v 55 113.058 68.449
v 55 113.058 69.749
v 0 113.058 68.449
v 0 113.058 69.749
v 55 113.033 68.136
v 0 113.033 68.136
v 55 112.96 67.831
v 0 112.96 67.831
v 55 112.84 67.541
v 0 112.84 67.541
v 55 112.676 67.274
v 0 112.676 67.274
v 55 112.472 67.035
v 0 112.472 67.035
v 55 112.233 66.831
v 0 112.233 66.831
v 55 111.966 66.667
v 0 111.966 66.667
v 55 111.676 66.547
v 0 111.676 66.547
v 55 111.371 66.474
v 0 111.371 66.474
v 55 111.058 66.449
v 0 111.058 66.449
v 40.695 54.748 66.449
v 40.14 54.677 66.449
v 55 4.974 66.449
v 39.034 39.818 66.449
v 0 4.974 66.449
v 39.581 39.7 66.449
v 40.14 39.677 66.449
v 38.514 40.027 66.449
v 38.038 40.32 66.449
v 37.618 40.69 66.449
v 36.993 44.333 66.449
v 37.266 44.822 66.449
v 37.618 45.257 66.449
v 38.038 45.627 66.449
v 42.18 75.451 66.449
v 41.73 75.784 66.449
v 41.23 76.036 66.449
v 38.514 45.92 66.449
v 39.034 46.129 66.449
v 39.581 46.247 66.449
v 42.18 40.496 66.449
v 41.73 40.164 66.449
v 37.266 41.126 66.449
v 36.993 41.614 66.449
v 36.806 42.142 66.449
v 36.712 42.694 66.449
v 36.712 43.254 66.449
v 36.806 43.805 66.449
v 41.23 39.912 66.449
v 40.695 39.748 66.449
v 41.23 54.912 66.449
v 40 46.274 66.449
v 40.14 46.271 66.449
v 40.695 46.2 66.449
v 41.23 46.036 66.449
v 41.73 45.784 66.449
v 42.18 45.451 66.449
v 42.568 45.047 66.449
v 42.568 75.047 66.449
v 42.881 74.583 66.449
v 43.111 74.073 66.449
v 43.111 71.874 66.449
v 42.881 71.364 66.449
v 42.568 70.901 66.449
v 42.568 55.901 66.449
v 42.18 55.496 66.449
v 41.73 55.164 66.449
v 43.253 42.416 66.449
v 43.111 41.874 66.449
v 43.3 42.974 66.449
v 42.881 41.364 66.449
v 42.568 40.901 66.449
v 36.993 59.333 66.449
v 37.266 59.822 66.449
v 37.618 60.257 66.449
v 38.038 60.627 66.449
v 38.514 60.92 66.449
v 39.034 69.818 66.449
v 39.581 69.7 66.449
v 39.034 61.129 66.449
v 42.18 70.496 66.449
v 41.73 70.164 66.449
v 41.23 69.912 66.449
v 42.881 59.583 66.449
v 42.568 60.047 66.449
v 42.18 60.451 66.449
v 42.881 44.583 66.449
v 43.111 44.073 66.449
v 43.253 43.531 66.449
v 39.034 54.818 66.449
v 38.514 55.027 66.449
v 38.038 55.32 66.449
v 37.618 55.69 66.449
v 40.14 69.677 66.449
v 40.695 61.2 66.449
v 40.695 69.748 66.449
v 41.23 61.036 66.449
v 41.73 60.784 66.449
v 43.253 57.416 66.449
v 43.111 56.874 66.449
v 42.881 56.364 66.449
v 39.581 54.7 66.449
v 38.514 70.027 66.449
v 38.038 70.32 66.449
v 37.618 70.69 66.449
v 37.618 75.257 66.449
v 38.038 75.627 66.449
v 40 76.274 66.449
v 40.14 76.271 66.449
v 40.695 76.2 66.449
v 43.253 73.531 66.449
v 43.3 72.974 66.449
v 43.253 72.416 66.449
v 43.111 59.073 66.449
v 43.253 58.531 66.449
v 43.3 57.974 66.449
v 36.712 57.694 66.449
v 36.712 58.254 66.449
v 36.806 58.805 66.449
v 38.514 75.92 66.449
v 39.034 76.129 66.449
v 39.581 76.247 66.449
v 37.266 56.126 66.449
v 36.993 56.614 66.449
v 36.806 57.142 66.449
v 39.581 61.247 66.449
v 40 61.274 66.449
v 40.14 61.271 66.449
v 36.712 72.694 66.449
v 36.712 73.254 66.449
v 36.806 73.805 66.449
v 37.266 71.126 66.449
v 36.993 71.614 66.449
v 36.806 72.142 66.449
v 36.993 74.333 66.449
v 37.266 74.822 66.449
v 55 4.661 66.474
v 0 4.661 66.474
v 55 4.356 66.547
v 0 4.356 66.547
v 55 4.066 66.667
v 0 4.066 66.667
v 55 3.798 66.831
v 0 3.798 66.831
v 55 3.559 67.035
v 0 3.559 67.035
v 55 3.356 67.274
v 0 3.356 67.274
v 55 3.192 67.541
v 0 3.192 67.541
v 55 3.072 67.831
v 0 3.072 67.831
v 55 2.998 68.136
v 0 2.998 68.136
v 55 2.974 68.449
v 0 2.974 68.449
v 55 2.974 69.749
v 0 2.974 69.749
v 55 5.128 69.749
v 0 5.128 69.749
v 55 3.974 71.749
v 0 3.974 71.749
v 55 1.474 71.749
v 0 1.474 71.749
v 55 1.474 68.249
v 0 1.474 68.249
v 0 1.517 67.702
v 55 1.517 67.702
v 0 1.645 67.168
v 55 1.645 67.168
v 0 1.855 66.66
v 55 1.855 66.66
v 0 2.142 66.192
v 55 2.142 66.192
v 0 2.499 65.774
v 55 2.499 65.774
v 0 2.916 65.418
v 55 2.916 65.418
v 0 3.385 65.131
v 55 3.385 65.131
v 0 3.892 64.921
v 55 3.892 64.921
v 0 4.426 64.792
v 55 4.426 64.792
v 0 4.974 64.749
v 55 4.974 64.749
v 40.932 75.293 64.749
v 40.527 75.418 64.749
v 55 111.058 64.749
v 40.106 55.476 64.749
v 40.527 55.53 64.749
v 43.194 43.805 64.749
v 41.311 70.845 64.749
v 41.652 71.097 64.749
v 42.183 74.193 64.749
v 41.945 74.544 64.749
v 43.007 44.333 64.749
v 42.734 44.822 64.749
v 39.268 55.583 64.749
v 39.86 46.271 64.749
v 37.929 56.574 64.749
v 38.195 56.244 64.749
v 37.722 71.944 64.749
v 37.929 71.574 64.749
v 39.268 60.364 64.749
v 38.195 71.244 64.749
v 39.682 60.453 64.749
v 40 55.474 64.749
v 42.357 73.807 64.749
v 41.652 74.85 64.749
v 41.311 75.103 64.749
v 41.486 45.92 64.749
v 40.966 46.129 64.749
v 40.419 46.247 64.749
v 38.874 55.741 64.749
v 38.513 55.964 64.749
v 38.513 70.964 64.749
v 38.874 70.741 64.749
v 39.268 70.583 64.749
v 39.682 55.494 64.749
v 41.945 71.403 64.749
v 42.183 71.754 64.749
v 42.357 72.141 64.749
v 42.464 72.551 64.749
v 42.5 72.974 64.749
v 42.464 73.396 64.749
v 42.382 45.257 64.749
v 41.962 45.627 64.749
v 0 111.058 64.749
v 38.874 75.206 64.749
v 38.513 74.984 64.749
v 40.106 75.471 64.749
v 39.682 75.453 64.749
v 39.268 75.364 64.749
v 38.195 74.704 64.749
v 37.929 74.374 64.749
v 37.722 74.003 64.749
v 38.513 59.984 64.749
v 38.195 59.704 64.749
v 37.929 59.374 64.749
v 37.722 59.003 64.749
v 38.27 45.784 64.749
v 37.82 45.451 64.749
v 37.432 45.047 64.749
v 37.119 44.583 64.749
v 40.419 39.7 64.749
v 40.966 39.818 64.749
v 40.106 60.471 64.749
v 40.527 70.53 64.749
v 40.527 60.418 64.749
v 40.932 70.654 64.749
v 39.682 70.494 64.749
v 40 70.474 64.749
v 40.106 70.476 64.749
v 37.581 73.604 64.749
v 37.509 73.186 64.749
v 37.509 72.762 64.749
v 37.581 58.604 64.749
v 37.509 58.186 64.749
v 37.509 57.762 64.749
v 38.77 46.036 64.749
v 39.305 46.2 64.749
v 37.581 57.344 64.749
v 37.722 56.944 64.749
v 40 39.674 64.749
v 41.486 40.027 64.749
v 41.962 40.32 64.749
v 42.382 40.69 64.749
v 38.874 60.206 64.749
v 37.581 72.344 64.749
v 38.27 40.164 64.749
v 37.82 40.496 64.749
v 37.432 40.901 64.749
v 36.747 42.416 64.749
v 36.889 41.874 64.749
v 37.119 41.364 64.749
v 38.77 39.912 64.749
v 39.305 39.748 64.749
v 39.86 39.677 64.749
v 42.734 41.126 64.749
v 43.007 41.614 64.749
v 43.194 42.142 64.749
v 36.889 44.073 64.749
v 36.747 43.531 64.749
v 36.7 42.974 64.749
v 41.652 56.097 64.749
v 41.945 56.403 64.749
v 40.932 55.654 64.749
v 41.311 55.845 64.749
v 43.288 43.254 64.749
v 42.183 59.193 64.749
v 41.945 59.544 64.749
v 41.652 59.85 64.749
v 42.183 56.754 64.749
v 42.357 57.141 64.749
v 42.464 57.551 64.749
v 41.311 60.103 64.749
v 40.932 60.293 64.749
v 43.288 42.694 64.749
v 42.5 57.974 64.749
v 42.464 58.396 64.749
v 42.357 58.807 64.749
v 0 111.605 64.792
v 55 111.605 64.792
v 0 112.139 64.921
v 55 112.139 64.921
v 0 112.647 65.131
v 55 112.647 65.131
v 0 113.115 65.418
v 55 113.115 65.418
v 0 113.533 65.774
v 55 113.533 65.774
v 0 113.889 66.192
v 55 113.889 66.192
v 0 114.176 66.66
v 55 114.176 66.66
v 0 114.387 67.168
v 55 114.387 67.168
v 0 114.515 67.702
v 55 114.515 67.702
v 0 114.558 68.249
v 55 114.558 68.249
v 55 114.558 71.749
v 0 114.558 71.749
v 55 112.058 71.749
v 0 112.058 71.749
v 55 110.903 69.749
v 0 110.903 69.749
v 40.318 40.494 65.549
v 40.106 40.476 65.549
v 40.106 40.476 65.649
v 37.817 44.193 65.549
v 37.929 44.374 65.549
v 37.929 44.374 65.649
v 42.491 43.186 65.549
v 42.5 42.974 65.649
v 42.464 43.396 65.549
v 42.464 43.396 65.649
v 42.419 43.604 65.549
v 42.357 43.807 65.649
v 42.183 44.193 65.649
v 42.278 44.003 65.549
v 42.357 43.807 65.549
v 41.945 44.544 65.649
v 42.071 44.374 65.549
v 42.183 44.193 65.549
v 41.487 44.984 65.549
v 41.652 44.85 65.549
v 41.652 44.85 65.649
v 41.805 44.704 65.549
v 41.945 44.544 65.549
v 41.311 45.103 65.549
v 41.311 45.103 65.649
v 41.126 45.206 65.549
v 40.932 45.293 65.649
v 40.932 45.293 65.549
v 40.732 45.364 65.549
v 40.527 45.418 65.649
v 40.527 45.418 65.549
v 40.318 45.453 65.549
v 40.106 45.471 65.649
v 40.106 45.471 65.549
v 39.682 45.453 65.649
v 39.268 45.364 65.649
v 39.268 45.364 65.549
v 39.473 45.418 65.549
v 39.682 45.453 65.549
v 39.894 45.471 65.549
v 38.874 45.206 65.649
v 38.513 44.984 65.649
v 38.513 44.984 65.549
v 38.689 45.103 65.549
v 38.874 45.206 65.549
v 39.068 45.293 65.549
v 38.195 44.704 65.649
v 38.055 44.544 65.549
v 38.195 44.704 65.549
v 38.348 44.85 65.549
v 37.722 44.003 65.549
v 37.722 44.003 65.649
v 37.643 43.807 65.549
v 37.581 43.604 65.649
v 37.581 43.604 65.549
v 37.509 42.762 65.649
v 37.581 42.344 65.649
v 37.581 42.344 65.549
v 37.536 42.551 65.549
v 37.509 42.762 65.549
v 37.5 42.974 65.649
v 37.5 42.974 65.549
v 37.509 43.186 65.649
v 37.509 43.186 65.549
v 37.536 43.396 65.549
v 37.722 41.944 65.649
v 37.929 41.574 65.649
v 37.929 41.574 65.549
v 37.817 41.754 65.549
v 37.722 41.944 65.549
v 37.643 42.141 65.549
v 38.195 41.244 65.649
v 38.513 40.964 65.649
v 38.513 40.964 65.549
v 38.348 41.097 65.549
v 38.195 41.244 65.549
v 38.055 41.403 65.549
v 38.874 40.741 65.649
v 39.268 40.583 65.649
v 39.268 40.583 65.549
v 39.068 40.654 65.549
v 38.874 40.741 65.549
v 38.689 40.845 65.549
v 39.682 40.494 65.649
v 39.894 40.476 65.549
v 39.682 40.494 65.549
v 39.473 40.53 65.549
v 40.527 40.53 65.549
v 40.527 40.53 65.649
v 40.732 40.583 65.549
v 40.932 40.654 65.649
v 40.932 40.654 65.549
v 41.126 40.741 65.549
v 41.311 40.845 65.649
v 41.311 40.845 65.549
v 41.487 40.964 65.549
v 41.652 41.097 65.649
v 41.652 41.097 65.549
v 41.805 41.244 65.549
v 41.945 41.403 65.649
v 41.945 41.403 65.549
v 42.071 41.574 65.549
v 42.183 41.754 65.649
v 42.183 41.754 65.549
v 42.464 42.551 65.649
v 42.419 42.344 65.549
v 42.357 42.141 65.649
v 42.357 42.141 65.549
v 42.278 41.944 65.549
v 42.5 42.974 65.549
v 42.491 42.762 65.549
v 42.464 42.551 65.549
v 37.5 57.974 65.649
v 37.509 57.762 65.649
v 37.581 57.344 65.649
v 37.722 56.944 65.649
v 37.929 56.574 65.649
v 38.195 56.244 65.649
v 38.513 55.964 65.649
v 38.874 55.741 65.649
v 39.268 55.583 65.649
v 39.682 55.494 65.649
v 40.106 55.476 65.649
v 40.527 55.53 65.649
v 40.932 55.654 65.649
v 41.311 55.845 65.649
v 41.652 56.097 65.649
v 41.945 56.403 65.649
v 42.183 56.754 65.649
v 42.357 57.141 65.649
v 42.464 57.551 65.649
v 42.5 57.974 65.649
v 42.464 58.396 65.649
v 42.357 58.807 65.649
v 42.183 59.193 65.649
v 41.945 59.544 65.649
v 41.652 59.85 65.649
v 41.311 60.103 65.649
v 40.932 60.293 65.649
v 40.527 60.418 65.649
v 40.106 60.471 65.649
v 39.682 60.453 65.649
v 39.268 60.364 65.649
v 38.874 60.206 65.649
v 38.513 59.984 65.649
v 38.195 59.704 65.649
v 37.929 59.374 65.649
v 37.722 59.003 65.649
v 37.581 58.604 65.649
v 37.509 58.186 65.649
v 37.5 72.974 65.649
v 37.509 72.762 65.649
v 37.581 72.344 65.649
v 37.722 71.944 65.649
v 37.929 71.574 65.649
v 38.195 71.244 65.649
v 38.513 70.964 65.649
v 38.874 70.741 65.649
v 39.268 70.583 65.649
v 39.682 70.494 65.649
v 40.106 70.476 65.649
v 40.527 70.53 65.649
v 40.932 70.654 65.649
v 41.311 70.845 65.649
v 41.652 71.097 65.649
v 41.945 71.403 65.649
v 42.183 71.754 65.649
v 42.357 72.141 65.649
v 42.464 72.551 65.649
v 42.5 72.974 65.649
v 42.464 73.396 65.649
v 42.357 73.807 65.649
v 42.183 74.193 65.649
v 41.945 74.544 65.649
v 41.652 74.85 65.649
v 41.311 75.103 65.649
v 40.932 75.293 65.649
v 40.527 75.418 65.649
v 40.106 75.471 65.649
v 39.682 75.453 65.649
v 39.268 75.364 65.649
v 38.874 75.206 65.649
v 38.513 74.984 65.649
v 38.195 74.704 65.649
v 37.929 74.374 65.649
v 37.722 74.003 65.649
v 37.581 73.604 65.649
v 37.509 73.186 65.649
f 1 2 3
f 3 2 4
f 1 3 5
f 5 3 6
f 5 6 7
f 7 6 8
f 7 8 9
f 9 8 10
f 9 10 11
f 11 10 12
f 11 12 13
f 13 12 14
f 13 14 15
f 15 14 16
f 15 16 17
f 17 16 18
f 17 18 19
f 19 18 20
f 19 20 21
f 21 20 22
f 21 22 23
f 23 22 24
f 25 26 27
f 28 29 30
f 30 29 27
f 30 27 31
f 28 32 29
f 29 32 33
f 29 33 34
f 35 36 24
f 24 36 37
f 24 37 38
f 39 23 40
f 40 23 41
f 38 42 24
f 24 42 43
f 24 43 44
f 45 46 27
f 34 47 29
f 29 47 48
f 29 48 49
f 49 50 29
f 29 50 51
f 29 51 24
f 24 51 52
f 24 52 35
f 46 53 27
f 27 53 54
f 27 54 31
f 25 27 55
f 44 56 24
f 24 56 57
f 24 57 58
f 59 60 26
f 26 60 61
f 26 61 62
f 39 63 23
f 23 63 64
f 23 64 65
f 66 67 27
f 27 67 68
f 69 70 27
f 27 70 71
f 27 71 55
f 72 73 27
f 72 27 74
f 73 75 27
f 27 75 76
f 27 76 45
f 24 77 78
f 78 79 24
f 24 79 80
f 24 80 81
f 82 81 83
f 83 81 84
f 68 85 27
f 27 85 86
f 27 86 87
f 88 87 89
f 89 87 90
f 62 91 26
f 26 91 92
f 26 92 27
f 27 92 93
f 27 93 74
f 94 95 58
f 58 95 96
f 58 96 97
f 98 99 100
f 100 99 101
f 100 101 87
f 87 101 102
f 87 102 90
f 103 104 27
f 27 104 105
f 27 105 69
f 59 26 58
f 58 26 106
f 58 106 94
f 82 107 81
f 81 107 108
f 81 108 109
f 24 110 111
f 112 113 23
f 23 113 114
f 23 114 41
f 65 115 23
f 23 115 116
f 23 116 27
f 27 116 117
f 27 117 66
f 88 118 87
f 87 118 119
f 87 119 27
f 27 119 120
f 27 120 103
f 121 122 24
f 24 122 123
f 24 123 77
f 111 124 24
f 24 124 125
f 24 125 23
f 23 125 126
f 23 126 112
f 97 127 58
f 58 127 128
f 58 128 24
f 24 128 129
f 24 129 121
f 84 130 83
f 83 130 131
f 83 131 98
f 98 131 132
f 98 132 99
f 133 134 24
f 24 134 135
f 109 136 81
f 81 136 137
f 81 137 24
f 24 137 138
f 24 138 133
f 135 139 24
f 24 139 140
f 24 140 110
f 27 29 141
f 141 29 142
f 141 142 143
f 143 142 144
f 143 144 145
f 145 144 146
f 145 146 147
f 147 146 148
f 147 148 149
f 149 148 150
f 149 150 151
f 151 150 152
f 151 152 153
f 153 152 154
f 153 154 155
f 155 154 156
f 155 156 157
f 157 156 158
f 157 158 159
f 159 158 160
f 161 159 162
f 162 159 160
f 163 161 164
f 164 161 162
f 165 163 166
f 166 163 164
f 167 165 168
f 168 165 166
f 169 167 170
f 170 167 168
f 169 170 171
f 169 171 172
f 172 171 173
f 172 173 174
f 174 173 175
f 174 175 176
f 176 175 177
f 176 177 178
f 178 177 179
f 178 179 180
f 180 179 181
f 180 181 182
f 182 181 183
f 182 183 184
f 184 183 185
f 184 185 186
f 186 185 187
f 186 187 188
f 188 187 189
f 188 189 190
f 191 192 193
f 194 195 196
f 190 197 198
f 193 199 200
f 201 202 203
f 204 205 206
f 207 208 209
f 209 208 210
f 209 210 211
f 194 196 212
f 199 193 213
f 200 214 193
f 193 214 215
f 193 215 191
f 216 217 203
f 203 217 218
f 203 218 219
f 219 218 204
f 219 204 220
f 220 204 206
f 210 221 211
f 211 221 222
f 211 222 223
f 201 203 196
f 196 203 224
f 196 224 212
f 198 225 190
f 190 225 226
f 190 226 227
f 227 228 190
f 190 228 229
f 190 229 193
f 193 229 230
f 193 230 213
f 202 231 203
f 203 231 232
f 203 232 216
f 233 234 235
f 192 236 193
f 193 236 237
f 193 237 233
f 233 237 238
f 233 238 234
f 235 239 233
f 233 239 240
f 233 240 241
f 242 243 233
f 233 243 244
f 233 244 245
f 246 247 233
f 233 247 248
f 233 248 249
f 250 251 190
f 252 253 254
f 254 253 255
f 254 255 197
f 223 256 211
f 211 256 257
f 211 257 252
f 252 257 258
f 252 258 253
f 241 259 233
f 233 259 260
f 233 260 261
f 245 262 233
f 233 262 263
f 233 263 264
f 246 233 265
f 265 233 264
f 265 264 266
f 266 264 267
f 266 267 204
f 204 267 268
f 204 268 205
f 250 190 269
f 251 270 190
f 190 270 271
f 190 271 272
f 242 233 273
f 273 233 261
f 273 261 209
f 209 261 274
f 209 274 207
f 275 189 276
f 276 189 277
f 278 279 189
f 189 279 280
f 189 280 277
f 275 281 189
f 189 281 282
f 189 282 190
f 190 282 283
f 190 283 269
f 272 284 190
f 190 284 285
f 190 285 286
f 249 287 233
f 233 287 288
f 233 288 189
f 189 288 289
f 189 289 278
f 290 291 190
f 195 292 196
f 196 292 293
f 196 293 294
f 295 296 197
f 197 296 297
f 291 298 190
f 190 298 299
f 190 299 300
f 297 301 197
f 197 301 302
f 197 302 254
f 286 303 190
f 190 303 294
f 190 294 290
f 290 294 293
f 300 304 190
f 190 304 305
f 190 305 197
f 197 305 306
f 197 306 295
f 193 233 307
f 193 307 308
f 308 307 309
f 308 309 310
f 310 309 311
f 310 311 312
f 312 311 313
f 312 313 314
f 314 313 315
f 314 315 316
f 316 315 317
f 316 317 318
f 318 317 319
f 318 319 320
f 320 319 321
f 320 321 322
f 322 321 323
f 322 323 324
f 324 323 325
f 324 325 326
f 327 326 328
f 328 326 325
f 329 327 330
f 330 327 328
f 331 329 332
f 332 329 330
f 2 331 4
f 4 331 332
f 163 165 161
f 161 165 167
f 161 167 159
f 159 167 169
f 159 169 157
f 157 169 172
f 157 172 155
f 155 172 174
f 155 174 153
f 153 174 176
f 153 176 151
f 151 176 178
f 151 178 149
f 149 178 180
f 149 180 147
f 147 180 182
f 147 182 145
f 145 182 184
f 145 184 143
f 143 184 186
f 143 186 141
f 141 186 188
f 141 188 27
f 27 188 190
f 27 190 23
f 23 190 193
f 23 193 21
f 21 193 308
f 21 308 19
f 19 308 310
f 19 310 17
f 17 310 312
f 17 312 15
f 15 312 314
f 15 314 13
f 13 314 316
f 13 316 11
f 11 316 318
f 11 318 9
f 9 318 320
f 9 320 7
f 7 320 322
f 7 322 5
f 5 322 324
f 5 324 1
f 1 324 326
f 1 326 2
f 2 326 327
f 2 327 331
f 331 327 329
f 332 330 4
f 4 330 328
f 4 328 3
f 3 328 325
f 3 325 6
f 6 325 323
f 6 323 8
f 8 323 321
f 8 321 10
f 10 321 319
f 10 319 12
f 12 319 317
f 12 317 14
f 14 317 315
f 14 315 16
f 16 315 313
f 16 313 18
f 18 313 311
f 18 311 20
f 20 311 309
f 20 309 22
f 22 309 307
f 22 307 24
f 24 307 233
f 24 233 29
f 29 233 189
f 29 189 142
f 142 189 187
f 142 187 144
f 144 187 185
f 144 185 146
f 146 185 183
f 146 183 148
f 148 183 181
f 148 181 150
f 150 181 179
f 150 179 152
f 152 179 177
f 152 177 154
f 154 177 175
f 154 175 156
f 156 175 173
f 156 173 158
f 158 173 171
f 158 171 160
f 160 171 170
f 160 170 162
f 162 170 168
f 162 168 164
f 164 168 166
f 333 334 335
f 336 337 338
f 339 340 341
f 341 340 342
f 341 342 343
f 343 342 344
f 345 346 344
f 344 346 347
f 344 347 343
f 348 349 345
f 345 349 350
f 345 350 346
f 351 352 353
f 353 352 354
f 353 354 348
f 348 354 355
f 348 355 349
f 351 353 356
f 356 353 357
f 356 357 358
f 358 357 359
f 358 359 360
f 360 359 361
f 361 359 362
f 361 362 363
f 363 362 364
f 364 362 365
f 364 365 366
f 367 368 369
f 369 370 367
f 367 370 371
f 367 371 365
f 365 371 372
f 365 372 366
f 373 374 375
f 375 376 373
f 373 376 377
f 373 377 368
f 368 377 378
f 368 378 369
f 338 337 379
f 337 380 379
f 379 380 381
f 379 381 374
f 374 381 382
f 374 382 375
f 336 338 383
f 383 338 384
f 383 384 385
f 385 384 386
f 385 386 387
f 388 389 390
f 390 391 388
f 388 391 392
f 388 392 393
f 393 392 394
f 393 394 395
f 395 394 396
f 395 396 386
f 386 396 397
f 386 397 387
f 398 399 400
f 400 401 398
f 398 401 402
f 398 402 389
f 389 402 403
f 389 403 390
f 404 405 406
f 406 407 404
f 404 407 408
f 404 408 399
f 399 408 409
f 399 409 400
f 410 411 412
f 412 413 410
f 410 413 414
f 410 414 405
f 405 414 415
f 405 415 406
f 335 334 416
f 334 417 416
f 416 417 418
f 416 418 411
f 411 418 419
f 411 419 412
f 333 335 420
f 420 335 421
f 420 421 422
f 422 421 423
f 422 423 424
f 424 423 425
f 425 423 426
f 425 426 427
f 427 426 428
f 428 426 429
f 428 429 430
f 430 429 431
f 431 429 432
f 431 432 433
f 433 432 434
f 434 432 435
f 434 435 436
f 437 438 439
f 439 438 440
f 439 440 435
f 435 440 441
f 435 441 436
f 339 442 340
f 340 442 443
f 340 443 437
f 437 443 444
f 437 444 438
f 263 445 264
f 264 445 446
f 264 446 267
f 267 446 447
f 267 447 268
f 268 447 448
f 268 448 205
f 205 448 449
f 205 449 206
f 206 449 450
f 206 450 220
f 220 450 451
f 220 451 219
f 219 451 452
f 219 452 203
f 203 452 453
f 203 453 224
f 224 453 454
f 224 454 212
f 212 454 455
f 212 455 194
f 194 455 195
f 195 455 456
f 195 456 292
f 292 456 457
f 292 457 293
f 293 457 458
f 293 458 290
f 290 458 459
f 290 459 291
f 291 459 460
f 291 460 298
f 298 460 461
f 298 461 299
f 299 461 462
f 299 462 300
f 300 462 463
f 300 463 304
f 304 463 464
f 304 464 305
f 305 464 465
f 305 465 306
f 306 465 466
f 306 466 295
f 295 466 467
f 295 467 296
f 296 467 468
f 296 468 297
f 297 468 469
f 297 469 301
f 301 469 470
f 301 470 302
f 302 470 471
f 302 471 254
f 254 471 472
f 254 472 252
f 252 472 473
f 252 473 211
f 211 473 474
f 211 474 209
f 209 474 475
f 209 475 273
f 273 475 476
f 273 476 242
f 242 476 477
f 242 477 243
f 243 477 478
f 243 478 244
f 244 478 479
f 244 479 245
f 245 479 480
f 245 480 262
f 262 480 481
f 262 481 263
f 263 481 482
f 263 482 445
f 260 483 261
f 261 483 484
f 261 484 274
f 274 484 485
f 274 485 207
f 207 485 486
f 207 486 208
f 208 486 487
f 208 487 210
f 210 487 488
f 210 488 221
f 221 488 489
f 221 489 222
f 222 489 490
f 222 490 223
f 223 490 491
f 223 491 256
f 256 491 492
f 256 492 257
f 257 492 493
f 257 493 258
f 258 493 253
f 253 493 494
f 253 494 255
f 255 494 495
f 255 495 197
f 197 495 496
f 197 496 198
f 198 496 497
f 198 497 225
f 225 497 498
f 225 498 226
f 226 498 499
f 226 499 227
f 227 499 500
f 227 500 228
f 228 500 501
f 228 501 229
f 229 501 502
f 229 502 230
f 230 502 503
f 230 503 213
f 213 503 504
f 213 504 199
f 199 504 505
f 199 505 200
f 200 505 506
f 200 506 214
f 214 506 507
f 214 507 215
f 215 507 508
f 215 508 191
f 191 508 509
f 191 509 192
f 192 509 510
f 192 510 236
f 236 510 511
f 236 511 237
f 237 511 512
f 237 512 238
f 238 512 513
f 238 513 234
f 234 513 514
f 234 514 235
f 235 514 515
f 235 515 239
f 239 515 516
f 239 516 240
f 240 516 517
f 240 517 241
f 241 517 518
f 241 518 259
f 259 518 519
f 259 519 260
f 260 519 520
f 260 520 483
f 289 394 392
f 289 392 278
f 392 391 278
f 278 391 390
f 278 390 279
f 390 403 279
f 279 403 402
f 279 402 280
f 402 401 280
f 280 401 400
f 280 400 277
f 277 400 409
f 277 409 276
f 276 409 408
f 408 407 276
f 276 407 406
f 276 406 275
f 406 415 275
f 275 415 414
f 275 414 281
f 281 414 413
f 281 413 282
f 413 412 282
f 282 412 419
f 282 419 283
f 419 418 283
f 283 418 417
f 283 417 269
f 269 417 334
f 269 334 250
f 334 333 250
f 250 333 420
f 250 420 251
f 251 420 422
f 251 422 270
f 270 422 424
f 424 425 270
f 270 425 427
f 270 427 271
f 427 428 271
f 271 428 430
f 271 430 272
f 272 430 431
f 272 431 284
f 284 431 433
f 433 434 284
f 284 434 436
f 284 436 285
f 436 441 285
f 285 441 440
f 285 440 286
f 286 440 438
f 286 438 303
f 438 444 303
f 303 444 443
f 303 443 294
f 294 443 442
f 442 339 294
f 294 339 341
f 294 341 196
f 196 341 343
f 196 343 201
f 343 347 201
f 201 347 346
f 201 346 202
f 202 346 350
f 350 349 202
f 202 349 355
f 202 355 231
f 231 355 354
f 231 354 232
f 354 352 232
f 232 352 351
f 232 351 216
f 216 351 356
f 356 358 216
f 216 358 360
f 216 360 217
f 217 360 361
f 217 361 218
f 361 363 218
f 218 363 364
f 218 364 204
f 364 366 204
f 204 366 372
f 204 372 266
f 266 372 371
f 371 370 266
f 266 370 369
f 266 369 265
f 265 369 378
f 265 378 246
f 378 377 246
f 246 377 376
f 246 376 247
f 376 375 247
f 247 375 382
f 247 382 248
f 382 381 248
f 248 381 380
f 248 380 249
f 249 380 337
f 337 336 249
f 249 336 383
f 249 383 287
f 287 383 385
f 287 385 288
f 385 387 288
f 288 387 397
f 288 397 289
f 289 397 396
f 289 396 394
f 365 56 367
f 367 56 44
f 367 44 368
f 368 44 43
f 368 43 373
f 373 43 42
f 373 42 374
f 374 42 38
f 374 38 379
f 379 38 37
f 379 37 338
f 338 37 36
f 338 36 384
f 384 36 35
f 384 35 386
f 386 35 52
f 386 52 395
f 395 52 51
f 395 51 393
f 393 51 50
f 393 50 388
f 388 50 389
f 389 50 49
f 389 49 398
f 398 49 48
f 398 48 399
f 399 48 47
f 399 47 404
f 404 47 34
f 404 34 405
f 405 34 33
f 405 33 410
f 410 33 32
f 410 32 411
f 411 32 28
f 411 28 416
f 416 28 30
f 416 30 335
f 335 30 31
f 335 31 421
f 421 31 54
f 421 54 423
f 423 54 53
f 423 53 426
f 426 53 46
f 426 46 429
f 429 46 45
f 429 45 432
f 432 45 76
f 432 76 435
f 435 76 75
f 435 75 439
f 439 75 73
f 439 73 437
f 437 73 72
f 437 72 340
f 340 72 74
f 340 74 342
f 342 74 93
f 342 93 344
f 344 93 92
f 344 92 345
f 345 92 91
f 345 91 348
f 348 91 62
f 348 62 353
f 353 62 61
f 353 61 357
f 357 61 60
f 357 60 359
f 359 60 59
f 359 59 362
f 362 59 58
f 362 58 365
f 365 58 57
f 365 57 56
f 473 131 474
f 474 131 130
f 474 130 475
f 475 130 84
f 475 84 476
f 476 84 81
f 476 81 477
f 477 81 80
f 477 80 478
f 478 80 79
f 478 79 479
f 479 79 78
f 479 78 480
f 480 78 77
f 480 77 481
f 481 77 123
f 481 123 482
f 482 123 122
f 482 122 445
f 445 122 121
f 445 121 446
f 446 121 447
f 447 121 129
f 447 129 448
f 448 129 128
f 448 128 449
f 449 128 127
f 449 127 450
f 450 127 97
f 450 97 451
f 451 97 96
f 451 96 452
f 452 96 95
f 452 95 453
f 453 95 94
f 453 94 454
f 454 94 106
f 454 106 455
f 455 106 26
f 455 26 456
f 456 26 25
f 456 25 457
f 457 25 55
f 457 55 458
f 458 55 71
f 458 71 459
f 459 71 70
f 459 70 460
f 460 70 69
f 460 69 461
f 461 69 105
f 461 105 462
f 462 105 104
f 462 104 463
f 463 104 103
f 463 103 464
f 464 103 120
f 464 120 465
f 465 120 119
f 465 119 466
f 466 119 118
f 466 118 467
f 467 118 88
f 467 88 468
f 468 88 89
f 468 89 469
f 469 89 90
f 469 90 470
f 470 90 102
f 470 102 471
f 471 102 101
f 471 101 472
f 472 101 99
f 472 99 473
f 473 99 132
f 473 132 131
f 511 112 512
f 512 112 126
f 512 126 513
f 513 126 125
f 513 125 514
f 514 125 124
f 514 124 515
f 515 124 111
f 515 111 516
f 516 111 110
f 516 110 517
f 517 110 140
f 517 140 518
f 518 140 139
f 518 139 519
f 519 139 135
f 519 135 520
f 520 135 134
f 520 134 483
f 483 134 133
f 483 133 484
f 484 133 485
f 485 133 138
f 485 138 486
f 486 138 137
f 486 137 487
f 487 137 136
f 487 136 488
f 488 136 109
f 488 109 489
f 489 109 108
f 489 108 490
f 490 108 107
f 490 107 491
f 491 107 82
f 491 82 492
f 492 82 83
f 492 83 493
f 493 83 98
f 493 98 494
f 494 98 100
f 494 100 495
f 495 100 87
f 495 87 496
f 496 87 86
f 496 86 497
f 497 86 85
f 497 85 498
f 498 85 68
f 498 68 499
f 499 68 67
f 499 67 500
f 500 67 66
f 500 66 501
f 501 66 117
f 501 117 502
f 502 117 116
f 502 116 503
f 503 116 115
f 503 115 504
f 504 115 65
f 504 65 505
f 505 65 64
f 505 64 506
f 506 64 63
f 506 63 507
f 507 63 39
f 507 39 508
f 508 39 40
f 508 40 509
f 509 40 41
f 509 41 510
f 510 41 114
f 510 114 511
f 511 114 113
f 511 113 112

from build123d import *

# Parameters (mm, degrees)
BOSS_EXTRUDE1_DEPTH = 55
CUT_EXTRUDE1_REACH  = 3.7
SKETCH2_R           = 2.5
CHAMFER1_SIZE       = 0.8


with BuildPart() as part:
    # Sketch1 → Boss-Extrude1 (new body)
    with BuildSketch(Plane(origin=(0, 0, 0), x_dir=(0, 0, -1), z_dir=(1, 0, 0))):
        with BuildLine():
            Line((-69.749215448, 110.903184829), (-69.749215448, 113.057885367))
            Line((-69.749215448, 113.057885367), (-68.449215448, 113.057885367))
            ThreePointArc((-68.449215448, 113.057885367), (-67.035001885, 112.47209893), (-66.449215448, 111.057885367))
            Line((-66.449215448, 111.057885367), (-66.449215448, 4.973683681))
            ThreePointArc((-66.449215448, 4.973683681), (-67.035001885, 3.559470118), (-68.449215448, 2.973683681))
            Line((-68.449215448, 2.973683681), (-69.749215448, 2.973683681))
            Line((-69.749215448, 2.973683681), (-69.749215448, 5.128384219))
            Line((-69.749215448, 5.128384219), (-71.749215448, 3.973683681))
            Line((-71.749215448, 3.973683681), (-71.749215448, 1.473683681))
            Line((-71.749215448, 1.473683681), (-68.249215448, 1.473683681))
            ThreePointArc((-68.249215448, 1.473683681), (-65.774341713, 2.498809947), (-64.749215448, 4.973683681))
            Line((-64.749215448, 4.973683681), (-64.749215448, 111.057885367))
            ThreePointArc((-64.749215448, 111.057885367), (-65.774341713, 113.532759101), (-68.249215448, 114.557885367))
            Line((-68.249215448, 114.557885367), (-71.749215448, 114.557885367))
            Line((-71.749215448, 114.557885367), (-71.749215448, 112.057885367))
            Line((-71.749215448, 112.057885367), (-69.749215448, 110.903184829))
        make_face()
    extrude(amount=BOSS_EXTRUDE1_DEPTH)

    # Sketch2 → Cut-Extrude1 (cut, up to next)
    with BuildSketch(Plane.XY.offset(66.449215448), mode=Mode.PRIVATE) as cut_extrude1_sk1:
        with Locations((40, 72.973683681)):
            Circle(SKETCH2_R)
    cut_extrude1_tool1 = extrude(cut_extrude1_sk1.sketch, amount=-CUT_EXTRUDE1_REACH, mode=Mode.PRIVATE) & part.part
    add(cut_extrude1_tool1.solids().sort_by_distance((40, 72.973684, 66.449215))[0], mode=Mode.SUBTRACT)
    # Sketch2 → Cut-Extrude1 (cut, up to next)
    with BuildSketch(Plane.XY.offset(66.449215448), mode=Mode.PRIVATE) as cut_extrude1_sk2:
        with Locations((40, 57.973683681)):
            Circle(SKETCH2_R)
    cut_extrude1_tool2 = extrude(cut_extrude1_sk2.sketch, amount=-CUT_EXTRUDE1_REACH, mode=Mode.PRIVATE) & part.part
    add(cut_extrude1_tool2.solids().sort_by_distance((40, 57.973684, 66.449215))[0], mode=Mode.SUBTRACT)
    # Sketch2 → Cut-Extrude1 (cut, up to next)
    with BuildSketch(Plane.XY.offset(66.449215448), mode=Mode.PRIVATE) as cut_extrude1_sk3:
        with Locations((40, 42.973683681)):
            Circle(SKETCH2_R)
    cut_extrude1_tool3 = extrude(cut_extrude1_sk3.sketch, amount=-CUT_EXTRUDE1_REACH, mode=Mode.PRIVATE) & part.part
    add(cut_extrude1_tool3.solids().sort_by_distance((40, 42.973684, 66.449215))[0], mode=Mode.SUBTRACT)

    # Chamfer1
    chamfer1_edges = [part.edges().sort_by_distance(p)[0] for p in [
        (37.5, 72.973683681, 66.449215448),
        (37.5, 57.973683681, 66.449215448),
        (37.5, 42.973683681, 66.449215448),
        (37.5, 42.973683681, 64.749215448),
    ]]
    chamfer(chamfer1_edges, length=CHAMFER1_SIZE)


solid = part.part
